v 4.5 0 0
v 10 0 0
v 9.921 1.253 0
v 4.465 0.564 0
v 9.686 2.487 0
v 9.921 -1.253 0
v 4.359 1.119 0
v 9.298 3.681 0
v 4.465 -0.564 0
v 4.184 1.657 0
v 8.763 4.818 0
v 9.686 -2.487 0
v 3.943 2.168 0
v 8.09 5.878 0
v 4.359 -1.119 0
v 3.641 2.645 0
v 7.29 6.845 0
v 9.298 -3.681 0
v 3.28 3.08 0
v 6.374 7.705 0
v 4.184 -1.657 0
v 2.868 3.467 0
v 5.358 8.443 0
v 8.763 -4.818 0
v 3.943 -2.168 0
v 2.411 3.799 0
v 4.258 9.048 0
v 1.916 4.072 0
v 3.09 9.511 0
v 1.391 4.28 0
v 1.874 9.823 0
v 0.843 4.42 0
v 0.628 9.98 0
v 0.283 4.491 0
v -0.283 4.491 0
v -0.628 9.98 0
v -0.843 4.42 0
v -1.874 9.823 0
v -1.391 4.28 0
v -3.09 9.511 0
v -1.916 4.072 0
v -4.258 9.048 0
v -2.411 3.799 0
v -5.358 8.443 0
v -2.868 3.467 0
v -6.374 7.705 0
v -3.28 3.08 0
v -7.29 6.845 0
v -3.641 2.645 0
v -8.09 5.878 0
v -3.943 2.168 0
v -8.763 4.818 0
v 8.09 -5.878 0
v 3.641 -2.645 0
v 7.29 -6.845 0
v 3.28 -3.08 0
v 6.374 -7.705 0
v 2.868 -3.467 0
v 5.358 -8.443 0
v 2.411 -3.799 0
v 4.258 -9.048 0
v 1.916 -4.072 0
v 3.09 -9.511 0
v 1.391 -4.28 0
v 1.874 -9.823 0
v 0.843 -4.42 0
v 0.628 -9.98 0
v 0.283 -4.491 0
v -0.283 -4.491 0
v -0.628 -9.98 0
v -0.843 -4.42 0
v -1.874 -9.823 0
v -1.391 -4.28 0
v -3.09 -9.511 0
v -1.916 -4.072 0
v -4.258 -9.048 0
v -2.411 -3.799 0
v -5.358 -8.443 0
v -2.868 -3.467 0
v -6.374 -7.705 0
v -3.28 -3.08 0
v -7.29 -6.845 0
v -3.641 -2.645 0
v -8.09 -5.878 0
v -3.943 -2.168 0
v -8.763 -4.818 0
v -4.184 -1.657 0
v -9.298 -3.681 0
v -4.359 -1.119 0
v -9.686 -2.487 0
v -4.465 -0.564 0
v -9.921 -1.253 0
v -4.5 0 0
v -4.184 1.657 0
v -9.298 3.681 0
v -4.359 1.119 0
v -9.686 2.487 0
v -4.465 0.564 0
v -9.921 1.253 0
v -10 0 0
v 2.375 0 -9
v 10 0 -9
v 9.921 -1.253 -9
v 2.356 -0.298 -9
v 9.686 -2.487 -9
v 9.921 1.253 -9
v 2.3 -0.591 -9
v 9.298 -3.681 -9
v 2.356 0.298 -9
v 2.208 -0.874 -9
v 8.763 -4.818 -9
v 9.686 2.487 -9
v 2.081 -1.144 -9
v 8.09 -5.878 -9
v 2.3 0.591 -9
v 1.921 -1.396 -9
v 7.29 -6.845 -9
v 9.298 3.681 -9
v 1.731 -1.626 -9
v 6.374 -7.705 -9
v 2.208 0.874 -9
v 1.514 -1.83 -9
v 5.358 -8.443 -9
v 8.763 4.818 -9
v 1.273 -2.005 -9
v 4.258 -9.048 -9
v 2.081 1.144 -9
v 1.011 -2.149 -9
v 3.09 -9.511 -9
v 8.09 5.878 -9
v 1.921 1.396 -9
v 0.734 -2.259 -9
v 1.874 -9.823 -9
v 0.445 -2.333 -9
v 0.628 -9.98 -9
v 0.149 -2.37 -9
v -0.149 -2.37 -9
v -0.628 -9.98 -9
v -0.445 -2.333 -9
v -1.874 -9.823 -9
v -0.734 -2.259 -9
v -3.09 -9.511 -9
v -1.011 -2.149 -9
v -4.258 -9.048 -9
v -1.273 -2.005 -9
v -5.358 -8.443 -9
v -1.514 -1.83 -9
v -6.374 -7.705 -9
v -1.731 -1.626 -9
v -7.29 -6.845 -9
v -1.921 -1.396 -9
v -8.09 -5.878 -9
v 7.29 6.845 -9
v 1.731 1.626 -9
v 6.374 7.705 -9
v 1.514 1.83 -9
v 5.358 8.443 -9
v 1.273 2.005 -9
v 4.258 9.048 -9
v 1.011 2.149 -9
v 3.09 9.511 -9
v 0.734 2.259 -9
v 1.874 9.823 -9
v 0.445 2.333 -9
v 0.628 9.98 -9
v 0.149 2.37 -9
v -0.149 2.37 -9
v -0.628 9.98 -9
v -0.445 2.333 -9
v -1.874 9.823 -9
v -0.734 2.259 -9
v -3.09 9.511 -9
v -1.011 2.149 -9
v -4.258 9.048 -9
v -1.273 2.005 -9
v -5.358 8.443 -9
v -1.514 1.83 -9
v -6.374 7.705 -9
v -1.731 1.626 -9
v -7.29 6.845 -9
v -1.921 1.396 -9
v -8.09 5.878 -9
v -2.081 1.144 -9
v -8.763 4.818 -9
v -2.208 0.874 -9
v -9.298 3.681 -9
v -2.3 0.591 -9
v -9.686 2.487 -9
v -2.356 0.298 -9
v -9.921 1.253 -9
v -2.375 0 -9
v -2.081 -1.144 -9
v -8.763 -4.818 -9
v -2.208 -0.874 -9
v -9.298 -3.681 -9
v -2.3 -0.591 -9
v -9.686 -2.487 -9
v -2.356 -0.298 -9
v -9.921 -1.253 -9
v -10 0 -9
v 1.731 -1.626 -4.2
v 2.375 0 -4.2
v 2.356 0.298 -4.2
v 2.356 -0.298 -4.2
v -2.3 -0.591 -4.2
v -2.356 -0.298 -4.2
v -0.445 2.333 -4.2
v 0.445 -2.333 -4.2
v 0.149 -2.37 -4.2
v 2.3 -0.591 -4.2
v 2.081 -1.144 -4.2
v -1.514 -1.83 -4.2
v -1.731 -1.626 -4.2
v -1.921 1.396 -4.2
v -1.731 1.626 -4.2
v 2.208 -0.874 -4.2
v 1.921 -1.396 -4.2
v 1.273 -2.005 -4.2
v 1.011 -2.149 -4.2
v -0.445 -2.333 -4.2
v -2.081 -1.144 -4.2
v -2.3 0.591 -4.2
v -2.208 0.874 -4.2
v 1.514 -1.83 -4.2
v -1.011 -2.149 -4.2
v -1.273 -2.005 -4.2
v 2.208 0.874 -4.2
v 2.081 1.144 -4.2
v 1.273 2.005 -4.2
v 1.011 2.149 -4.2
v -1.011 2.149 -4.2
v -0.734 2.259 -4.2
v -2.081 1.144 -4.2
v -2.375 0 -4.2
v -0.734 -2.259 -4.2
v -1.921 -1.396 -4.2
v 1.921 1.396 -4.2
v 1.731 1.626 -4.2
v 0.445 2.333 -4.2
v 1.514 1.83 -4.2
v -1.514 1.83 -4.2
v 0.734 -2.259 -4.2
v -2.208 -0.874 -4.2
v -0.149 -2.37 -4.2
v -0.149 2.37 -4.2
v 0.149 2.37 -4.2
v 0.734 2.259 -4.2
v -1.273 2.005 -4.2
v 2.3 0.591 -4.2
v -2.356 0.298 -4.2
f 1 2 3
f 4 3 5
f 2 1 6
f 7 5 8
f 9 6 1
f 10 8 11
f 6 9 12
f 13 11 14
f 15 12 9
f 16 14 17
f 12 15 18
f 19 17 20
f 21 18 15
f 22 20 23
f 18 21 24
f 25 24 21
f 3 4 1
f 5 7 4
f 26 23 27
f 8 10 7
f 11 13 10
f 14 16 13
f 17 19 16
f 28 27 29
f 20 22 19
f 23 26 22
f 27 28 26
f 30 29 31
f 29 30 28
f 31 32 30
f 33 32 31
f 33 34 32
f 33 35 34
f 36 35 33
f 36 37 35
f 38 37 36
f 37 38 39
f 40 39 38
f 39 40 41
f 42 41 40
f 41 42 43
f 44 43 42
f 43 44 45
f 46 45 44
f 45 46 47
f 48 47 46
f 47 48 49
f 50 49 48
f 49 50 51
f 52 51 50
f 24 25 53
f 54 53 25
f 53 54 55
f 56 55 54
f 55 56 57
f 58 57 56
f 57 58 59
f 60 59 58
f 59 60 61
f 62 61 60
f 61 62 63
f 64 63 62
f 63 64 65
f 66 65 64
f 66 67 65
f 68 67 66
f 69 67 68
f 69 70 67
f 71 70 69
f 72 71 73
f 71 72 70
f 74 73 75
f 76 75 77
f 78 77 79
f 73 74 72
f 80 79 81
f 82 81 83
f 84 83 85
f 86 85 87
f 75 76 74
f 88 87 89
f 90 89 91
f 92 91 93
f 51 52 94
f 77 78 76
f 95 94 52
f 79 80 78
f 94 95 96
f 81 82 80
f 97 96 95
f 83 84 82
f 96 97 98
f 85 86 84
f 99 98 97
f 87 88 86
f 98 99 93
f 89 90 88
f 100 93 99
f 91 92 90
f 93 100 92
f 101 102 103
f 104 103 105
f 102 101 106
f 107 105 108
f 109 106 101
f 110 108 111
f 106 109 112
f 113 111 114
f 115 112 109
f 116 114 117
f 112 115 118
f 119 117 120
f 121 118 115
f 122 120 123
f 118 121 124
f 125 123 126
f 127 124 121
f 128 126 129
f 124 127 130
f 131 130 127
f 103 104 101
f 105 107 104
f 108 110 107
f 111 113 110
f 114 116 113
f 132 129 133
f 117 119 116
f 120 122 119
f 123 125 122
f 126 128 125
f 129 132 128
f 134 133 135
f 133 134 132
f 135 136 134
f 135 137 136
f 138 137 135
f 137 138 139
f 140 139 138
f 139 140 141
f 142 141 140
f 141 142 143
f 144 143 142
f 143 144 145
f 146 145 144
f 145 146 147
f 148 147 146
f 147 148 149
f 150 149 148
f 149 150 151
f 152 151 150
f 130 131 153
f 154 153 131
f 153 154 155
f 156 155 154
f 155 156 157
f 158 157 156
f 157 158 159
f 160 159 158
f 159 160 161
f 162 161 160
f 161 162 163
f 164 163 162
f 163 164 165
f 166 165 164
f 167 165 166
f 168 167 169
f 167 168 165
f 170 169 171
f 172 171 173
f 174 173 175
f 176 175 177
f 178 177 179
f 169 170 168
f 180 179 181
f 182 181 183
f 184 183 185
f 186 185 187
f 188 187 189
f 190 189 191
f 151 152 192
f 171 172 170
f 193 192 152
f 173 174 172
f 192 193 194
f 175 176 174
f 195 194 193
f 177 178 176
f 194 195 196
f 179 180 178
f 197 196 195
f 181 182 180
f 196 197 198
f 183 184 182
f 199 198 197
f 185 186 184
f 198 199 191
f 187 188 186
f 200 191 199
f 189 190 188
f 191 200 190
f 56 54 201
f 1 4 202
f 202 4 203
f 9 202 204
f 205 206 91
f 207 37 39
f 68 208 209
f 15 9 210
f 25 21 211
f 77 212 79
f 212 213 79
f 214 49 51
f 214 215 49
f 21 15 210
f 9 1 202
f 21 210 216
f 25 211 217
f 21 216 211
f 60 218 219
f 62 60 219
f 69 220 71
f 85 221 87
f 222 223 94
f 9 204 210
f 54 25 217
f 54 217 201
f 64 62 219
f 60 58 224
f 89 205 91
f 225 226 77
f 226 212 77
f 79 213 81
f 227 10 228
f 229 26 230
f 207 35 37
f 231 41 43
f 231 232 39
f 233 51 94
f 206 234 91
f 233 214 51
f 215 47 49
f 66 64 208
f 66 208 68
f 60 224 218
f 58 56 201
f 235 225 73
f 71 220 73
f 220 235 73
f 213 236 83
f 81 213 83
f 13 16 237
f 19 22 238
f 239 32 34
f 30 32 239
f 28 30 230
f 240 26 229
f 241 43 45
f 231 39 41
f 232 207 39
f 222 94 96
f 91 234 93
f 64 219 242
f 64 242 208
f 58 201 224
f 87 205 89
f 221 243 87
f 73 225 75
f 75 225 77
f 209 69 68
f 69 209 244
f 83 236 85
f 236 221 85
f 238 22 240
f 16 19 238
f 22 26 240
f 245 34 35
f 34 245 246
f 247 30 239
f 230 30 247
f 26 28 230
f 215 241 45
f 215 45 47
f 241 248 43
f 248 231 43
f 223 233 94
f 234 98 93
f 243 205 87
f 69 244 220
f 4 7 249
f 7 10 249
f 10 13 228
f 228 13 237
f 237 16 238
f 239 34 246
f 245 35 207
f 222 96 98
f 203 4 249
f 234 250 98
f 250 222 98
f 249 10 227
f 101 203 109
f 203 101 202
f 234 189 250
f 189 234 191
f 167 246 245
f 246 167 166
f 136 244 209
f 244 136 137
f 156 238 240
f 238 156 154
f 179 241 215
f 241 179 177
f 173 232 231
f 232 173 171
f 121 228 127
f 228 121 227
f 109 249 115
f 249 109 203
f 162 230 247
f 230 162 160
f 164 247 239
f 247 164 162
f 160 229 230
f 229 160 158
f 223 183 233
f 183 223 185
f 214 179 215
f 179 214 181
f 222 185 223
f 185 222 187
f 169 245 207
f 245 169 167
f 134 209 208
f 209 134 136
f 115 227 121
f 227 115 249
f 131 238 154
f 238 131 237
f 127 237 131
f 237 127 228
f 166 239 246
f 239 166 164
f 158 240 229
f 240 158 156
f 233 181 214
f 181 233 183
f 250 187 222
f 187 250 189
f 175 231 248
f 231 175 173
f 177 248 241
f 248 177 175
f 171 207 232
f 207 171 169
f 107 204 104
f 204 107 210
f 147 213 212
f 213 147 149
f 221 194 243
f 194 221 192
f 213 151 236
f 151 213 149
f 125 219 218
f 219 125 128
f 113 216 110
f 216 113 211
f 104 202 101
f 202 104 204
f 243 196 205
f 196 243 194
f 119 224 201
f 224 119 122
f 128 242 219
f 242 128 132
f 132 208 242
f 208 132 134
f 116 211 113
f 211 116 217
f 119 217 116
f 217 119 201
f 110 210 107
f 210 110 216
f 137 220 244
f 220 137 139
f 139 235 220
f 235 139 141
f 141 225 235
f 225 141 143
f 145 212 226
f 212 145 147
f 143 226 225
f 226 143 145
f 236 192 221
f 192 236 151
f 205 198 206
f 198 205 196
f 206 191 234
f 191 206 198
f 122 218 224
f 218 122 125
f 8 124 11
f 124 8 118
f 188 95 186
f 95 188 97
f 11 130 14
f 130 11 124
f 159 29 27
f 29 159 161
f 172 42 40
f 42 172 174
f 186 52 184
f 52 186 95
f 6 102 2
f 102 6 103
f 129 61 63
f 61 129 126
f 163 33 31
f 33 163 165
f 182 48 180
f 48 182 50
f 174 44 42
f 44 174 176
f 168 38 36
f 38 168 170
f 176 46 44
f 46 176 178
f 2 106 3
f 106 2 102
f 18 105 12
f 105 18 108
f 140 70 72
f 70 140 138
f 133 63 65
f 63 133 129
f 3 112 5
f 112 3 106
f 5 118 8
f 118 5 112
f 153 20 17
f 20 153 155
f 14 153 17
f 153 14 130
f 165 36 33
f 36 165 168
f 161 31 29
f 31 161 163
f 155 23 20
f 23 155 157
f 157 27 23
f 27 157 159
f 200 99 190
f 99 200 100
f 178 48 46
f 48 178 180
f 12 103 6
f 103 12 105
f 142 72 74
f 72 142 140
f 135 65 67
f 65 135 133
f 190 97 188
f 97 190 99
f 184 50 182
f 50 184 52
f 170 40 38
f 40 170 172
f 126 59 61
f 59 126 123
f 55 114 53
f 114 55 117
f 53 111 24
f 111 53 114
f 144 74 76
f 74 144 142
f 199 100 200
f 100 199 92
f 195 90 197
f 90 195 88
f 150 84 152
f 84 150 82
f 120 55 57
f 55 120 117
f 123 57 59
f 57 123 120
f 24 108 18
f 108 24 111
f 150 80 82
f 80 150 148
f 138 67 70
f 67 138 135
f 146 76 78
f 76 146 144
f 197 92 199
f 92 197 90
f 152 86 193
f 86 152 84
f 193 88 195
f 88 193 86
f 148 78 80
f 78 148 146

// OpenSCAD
$fn = 50;


difference() {
	union() {
		translate(v = [0, 0, -9.0000000000]) {
			cylinder(h = 9, r = 10.0000000000);
		}
		cylinder(h = 0, r = 19.0000000000);
	}
	union() {
		translate(v = [0, 0, 0]) {
			rotate(a = [0, 0, 0]) {
				difference() {
					union() {
						#translate(v = [0, 0, -9.0000000000]) {
							cylinder(h = 9, r = 2.2500000000);
						}
						#translate(v = [0, 0, -4.2000000000]) {
							cylinder(h = 4.2000000000, r1 = 2.3750000000, r2 = 4.5000000000);
						}
						#translate(v = [0, 0, -9.0000000000]) {
							cylinder(h = 9, r = 2.3750000000);
						}
						#translate(v = [0, 0, -9.0000000000]) {
							cylinder(h = 9, r = 2.2500000000);
						}
					}
					union();
				}
			}
		}
	}
}
